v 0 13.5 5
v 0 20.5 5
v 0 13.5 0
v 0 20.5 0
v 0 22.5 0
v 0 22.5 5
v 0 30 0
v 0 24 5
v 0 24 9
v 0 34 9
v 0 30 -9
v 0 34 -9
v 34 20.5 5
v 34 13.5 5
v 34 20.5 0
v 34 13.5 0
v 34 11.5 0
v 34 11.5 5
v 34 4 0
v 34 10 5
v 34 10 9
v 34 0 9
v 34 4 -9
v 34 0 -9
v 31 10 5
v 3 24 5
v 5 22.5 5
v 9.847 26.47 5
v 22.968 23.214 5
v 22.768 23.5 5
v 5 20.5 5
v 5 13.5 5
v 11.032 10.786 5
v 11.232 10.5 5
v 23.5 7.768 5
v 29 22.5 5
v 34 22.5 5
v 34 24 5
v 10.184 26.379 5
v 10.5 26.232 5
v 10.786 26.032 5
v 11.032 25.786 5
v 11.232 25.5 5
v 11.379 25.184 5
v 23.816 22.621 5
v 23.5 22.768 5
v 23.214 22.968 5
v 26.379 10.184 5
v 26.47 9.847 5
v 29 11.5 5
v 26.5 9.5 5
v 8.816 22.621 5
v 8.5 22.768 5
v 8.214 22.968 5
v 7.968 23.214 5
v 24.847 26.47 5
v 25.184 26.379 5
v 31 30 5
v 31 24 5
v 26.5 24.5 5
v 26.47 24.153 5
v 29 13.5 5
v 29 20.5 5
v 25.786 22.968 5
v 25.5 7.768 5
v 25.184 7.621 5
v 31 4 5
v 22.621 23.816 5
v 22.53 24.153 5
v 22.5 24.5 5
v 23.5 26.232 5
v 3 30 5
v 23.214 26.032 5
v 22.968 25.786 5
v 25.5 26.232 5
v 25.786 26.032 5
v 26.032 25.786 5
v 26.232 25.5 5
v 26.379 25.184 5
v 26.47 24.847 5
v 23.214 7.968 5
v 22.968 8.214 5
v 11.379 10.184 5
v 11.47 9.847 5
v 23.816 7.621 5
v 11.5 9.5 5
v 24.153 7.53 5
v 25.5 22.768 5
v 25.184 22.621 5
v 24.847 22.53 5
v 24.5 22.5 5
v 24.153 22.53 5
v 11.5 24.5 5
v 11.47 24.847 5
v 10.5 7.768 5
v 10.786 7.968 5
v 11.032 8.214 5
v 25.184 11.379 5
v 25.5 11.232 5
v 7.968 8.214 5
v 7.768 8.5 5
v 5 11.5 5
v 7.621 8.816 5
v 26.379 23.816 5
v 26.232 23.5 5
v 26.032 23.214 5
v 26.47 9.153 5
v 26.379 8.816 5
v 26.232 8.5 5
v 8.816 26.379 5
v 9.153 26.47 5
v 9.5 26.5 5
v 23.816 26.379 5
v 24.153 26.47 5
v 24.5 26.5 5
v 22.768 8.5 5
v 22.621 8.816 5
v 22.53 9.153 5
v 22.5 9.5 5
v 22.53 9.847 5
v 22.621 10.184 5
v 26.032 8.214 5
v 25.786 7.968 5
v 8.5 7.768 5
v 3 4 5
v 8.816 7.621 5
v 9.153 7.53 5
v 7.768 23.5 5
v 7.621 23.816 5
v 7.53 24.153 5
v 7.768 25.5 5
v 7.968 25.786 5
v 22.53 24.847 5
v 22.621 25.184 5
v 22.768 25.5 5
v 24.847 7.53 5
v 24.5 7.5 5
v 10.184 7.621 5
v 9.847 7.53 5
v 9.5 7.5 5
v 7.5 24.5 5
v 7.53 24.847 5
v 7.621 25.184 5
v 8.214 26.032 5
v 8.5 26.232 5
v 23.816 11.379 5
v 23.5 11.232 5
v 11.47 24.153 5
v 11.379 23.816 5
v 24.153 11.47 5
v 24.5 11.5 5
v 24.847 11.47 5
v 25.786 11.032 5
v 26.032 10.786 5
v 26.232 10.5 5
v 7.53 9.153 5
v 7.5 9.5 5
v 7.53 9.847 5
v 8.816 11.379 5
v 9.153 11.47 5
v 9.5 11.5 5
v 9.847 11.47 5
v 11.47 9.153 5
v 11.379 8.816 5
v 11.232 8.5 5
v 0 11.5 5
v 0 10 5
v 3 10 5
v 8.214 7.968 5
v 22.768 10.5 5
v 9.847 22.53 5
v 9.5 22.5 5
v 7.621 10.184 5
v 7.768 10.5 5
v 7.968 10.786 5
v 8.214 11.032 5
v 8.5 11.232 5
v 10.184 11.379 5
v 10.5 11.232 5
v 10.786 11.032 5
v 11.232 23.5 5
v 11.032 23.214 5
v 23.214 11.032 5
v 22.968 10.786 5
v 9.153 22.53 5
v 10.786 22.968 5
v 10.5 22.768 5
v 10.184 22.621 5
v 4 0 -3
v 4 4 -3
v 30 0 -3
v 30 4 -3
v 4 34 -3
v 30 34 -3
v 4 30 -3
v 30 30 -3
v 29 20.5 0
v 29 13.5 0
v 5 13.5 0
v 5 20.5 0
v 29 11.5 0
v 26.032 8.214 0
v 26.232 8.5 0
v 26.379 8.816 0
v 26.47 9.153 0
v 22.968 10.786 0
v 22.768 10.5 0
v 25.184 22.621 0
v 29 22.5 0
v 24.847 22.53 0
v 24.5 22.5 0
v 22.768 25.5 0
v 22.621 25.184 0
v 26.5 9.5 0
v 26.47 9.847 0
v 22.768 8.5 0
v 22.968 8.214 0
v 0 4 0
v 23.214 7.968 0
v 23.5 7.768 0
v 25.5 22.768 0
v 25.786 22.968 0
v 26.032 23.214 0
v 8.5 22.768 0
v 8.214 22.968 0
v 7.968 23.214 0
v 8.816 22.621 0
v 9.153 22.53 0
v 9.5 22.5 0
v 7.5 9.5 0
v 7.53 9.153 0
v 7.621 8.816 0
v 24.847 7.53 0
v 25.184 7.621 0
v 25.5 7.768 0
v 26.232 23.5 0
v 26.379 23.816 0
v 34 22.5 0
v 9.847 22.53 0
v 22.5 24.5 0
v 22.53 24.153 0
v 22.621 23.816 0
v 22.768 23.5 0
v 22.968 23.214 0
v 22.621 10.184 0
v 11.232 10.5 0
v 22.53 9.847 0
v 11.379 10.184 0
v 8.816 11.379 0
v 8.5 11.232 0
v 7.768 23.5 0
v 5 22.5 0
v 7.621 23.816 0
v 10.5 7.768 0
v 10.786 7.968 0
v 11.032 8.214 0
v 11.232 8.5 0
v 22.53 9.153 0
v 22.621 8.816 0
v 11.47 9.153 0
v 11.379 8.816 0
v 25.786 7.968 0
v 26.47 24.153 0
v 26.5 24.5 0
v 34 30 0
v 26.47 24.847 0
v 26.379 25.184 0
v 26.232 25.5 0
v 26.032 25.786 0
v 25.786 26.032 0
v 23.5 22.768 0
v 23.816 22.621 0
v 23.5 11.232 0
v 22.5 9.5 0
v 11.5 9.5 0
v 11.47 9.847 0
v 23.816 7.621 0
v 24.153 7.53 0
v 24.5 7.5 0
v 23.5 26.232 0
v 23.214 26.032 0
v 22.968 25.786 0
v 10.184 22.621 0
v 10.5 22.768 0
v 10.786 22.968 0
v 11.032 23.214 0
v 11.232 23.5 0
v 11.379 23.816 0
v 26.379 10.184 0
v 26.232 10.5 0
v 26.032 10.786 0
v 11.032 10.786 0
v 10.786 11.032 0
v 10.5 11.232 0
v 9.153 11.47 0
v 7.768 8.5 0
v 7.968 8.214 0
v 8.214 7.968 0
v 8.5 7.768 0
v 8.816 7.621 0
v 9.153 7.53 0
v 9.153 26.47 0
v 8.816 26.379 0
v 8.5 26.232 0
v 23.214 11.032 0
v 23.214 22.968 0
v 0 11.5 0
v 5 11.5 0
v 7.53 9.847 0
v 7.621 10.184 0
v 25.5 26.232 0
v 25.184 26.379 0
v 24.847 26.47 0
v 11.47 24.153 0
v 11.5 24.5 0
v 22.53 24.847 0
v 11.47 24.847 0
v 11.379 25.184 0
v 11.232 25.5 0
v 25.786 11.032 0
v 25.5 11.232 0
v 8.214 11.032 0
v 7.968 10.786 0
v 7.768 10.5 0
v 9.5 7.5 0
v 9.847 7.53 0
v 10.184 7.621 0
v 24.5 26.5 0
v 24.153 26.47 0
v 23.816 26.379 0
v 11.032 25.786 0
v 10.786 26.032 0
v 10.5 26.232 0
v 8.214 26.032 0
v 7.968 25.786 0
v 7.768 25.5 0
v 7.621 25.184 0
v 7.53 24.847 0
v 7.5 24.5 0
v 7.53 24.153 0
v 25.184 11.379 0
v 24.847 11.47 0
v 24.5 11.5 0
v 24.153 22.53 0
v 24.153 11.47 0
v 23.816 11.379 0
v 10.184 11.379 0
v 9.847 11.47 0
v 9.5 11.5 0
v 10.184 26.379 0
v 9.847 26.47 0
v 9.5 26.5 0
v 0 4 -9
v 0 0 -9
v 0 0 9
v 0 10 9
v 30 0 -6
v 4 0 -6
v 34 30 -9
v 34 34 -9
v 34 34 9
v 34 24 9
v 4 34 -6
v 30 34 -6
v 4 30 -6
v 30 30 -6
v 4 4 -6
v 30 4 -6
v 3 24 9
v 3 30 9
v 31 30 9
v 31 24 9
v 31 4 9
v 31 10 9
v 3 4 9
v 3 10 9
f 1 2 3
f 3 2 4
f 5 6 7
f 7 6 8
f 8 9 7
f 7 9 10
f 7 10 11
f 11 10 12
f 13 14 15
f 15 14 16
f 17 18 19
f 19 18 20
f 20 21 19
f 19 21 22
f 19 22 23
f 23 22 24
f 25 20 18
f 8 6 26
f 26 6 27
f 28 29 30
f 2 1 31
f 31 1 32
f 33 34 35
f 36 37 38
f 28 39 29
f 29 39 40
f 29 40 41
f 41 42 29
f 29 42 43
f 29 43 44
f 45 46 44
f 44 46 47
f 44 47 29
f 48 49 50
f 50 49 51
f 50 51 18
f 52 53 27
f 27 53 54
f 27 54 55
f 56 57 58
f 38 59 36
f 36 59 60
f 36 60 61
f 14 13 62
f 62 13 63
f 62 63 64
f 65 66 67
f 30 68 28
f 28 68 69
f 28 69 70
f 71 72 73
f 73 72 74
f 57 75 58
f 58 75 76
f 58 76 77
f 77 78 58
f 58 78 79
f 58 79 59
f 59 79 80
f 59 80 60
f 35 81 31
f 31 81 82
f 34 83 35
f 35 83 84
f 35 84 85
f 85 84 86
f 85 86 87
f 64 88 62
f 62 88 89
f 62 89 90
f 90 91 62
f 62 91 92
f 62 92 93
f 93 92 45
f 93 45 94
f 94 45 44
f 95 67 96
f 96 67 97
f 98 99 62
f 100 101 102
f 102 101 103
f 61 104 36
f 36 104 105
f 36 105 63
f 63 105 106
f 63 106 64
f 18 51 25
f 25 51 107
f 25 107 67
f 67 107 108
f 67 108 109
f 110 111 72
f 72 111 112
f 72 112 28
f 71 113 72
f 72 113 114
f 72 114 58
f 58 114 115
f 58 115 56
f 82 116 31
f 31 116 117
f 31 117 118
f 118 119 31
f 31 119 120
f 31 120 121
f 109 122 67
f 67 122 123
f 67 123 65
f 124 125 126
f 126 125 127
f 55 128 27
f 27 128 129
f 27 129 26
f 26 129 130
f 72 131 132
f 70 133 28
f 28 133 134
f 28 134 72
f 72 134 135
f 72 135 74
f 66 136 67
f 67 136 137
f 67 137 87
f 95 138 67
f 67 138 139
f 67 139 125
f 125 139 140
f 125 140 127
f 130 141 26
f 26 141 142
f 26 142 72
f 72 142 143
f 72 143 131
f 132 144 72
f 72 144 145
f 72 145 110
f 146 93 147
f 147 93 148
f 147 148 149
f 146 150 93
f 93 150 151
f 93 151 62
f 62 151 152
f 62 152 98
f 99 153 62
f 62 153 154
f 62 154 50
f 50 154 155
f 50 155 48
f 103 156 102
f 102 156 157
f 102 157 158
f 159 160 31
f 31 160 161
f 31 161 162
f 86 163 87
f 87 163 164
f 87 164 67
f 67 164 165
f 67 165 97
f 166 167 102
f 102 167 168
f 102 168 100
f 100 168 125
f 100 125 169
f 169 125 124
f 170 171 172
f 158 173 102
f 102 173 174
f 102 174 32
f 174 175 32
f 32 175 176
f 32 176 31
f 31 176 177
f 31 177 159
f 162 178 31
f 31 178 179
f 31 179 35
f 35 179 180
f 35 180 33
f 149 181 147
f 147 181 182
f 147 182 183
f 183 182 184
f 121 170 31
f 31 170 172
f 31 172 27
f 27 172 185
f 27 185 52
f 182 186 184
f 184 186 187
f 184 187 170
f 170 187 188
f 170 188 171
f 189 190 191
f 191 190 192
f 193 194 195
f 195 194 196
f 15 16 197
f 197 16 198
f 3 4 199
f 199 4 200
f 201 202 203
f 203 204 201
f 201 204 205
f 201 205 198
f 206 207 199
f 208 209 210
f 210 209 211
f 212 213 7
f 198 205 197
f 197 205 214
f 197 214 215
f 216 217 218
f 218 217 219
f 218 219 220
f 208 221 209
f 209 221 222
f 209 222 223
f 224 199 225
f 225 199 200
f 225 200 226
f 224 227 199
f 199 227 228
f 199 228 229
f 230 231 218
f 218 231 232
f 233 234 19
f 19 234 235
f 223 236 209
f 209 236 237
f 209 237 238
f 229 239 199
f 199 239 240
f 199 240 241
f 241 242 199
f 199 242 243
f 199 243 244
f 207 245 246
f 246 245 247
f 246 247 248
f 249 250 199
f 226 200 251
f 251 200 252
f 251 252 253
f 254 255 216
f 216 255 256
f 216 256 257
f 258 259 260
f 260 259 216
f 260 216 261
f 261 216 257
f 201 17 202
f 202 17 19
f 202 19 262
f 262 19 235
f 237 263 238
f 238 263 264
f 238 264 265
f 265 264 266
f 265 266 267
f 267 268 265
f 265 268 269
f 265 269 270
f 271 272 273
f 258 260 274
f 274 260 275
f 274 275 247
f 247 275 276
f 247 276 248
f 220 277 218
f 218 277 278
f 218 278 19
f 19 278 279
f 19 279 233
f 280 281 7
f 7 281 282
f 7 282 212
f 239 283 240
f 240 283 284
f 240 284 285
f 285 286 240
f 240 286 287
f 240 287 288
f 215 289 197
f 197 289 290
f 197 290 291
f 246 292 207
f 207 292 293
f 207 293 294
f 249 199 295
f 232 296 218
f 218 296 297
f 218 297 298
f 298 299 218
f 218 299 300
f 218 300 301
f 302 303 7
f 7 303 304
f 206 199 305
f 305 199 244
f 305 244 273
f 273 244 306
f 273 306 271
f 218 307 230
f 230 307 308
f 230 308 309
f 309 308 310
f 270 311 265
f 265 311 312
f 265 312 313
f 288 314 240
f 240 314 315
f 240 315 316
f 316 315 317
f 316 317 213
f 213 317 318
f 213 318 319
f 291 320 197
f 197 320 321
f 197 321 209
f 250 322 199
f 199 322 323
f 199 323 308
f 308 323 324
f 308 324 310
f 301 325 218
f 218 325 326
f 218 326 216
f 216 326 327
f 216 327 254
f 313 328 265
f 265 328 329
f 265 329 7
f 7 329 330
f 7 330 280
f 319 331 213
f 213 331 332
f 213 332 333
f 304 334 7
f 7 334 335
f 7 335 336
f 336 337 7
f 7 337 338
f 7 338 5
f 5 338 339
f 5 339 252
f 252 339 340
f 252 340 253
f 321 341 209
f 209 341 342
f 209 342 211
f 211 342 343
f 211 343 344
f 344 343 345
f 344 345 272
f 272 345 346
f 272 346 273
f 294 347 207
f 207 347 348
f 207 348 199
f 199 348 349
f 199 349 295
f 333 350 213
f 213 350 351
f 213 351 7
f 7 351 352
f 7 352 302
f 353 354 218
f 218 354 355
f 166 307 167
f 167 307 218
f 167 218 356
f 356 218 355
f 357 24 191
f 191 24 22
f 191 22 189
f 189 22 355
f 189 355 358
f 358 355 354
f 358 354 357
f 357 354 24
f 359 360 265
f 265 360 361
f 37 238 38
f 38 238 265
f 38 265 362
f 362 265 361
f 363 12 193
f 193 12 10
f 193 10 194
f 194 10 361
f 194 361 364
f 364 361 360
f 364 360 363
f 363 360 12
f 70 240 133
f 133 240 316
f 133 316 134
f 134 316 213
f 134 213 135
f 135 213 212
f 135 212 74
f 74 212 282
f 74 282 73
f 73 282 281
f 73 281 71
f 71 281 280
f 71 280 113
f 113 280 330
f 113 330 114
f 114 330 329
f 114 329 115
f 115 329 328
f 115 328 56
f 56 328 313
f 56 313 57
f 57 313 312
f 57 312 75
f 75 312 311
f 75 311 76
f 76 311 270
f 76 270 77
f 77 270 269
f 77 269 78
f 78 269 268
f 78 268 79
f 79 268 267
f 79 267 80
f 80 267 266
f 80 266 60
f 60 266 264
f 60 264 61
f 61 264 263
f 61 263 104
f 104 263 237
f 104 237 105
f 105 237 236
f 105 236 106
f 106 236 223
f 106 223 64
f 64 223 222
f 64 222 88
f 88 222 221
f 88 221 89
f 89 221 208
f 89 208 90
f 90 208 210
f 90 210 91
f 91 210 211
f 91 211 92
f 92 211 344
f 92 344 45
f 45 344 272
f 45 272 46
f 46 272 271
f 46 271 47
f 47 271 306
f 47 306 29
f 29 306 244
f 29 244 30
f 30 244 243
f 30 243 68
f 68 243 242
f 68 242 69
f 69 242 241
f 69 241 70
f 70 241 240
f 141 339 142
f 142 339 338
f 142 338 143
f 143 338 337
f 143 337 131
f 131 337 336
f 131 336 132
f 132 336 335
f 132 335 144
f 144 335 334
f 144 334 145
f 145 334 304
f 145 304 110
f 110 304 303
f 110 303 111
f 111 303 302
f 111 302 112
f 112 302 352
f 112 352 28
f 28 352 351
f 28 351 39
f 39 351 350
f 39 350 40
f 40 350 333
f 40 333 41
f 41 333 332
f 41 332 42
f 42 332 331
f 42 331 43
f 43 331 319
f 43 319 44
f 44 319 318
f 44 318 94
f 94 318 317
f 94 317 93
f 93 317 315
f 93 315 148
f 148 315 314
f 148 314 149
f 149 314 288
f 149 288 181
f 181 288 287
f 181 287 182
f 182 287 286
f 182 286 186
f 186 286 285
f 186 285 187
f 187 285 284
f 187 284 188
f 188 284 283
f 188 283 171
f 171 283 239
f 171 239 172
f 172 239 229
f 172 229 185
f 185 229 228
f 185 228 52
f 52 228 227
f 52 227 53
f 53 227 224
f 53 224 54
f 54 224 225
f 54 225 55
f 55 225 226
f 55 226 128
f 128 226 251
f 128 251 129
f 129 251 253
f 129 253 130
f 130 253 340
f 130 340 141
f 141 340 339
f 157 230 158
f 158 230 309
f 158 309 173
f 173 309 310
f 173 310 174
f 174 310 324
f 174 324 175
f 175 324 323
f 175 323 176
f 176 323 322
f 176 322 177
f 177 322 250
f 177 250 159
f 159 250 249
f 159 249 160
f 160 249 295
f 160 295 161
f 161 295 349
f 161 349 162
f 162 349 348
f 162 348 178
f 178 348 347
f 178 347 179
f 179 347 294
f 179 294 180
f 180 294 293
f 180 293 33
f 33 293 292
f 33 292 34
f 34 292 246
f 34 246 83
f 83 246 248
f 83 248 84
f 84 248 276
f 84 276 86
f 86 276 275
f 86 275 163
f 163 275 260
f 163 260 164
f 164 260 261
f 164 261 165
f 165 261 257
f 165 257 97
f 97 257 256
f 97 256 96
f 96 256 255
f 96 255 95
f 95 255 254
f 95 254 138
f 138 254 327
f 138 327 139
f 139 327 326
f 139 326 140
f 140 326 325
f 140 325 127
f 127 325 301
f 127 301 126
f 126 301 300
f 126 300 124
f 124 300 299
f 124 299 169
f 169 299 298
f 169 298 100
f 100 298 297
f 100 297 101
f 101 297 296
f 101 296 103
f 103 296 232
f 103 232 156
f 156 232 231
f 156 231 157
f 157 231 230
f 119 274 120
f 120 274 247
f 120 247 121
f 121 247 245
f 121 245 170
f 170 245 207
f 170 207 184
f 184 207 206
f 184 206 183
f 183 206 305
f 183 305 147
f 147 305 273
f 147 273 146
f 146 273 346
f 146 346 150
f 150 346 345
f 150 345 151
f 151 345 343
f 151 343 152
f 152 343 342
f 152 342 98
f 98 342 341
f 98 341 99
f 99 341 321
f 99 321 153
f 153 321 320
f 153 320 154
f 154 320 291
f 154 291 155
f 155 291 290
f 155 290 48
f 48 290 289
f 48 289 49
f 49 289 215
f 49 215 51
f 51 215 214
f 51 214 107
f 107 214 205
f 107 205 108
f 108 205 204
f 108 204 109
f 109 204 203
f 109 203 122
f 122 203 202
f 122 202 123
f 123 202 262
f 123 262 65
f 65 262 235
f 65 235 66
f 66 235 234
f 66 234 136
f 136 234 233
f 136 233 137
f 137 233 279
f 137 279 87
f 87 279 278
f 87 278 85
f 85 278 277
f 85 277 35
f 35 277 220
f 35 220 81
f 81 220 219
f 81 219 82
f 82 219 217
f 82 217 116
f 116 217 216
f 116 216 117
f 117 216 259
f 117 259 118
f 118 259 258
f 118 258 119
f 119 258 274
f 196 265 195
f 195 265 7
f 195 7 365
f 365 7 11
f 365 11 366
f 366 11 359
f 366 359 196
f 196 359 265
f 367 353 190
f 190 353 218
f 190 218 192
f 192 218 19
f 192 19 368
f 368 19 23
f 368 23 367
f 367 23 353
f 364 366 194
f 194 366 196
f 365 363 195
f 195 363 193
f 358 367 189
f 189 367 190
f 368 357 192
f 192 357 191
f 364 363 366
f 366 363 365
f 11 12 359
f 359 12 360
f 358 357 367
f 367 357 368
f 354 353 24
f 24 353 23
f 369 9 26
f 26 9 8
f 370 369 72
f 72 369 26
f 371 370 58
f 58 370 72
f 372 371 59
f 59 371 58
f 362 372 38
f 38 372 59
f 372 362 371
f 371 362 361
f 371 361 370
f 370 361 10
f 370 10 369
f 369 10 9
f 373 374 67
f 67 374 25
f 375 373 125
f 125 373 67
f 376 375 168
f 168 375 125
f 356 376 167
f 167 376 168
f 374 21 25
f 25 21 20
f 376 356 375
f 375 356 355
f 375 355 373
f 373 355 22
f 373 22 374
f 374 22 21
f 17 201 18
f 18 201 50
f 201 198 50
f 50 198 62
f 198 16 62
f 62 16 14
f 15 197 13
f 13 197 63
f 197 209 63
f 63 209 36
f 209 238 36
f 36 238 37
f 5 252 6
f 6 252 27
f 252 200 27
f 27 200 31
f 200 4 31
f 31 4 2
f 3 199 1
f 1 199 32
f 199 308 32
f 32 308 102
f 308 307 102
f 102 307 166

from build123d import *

# Parameters (mm, degrees)
SKETCH1_W          = 34
SKETCH1_H          = 34
SKETCH1_R          = 2
BODY_DEPTH         = 5
SKETCH2_W          = 34
SKETCH2_H          = 4
LEG1_DEPTH         = 3
SKETCH3_W          = 4
SKETCH3_H          = 4
LEG2_DEPTH         = 3
SKETCH4_W          = 34
SKETCH4_H          = 4
LEG3_DEPTH         = 3
WALLS_DEPTH        = 4
SKETCH6_W          = 5
SKETCH6_H          = 2
CUT_EXTRUDE1_DEPTH = 5


with BuildPart() as part:
    # Sketch1 → Body (new body)
    with BuildSketch(Plane.XY):
        with Locations((17, 17)):
            Rectangle(SKETCH1_W, SKETCH1_H)
        with Locations((24.5, 24.5)):
            Circle(SKETCH1_R, mode=Mode.SUBTRACT)
        with Locations((9.5, 24.5)):
            Circle(SKETCH1_R, mode=Mode.SUBTRACT)
        with Locations((9.5, 9.5)):
            Circle(SKETCH1_R, mode=Mode.SUBTRACT)
        with Locations((24.5, 9.5)):
            Circle(SKETCH1_R, mode=Mode.SUBTRACT)
    extrude(amount=BODY_DEPTH)

    # Sketch2 → Leg1 (add)
    with BuildSketch(Plane(origin=(0, 0, 0), x_dir=(-1, 0, 0), z_dir=(0, 0, -1))):
        with Locations((-17, 32)):
            Rectangle(SKETCH2_W, SKETCH2_H)
        with Locations((-17, 2)):
            Rectangle(SKETCH2_W, SKETCH2_H)
    extrude(amount=LEG1_DEPTH)

    # Sketch3 → Leg2 (add)
    with BuildSketch(Plane(origin=(0, 0, -3), x_dir=(-1, 0, 0), z_dir=(0, 0, -1))):
        with Locations((-32, 32)):
            Rectangle(SKETCH3_W, SKETCH3_H)
        with Locations((-2, 32)):
            Rectangle(SKETCH3_W, SKETCH3_H)
        with Locations((-2, 2)):
            Rectangle(SKETCH3_W, SKETCH3_H)
        with Locations((-32, 2)):
            Rectangle(SKETCH3_W, SKETCH3_H)
    extrude(amount=LEG2_DEPTH)

    # Sketch4 → Leg3 (add)
    with BuildSketch(Plane(origin=(0, 0, -6), x_dir=(-1, 0, 0), z_dir=(0, 0, -1))):
        with Locations((-17, 32)):
            Rectangle(SKETCH4_W, SKETCH4_H)
        with Locations((-17, 2)):
            Rectangle(SKETCH4_W, SKETCH4_H)
    extrude(amount=LEG3_DEPTH)

    # Sketch5 → Walls (add)
    with BuildSketch(Plane.XY.offset(5)):
        Polygon((0, 34), (34, 34), (34, 30), (34, 24), (31, 24), (31, 30), (3, 30), (3, 24), (0, 24), (0, 30), align=None)
        Polygon((31, 10), (34, 10), (34, 4), (34, 0), (0, 0), (0, 4), (0, 10), (3, 10), (3, 4), (31, 4), align=None)
    extrude(amount=WALLS_DEPTH)

    # Sketch6 → Cut-Extrude1 (cut)
    with BuildSketch(Plane.XY.offset(5)):
        with Locations((2.5, 21.5)):
            Rectangle(SKETCH6_W, SKETCH6_H)
        with Locations((31.5, 21.5)):
            Rectangle(SKETCH6_W, SKETCH6_H)
        with Locations((2.5, 12.5)):
            Rectangle(SKETCH6_W, SKETCH6_H)
        with Locations((31.5, 12.5)):
            Rectangle(SKETCH6_W, SKETCH6_H)
    extrude(amount=-CUT_EXTRUDE1_DEPTH, mode=Mode.SUBTRACT)


solid = part.part
